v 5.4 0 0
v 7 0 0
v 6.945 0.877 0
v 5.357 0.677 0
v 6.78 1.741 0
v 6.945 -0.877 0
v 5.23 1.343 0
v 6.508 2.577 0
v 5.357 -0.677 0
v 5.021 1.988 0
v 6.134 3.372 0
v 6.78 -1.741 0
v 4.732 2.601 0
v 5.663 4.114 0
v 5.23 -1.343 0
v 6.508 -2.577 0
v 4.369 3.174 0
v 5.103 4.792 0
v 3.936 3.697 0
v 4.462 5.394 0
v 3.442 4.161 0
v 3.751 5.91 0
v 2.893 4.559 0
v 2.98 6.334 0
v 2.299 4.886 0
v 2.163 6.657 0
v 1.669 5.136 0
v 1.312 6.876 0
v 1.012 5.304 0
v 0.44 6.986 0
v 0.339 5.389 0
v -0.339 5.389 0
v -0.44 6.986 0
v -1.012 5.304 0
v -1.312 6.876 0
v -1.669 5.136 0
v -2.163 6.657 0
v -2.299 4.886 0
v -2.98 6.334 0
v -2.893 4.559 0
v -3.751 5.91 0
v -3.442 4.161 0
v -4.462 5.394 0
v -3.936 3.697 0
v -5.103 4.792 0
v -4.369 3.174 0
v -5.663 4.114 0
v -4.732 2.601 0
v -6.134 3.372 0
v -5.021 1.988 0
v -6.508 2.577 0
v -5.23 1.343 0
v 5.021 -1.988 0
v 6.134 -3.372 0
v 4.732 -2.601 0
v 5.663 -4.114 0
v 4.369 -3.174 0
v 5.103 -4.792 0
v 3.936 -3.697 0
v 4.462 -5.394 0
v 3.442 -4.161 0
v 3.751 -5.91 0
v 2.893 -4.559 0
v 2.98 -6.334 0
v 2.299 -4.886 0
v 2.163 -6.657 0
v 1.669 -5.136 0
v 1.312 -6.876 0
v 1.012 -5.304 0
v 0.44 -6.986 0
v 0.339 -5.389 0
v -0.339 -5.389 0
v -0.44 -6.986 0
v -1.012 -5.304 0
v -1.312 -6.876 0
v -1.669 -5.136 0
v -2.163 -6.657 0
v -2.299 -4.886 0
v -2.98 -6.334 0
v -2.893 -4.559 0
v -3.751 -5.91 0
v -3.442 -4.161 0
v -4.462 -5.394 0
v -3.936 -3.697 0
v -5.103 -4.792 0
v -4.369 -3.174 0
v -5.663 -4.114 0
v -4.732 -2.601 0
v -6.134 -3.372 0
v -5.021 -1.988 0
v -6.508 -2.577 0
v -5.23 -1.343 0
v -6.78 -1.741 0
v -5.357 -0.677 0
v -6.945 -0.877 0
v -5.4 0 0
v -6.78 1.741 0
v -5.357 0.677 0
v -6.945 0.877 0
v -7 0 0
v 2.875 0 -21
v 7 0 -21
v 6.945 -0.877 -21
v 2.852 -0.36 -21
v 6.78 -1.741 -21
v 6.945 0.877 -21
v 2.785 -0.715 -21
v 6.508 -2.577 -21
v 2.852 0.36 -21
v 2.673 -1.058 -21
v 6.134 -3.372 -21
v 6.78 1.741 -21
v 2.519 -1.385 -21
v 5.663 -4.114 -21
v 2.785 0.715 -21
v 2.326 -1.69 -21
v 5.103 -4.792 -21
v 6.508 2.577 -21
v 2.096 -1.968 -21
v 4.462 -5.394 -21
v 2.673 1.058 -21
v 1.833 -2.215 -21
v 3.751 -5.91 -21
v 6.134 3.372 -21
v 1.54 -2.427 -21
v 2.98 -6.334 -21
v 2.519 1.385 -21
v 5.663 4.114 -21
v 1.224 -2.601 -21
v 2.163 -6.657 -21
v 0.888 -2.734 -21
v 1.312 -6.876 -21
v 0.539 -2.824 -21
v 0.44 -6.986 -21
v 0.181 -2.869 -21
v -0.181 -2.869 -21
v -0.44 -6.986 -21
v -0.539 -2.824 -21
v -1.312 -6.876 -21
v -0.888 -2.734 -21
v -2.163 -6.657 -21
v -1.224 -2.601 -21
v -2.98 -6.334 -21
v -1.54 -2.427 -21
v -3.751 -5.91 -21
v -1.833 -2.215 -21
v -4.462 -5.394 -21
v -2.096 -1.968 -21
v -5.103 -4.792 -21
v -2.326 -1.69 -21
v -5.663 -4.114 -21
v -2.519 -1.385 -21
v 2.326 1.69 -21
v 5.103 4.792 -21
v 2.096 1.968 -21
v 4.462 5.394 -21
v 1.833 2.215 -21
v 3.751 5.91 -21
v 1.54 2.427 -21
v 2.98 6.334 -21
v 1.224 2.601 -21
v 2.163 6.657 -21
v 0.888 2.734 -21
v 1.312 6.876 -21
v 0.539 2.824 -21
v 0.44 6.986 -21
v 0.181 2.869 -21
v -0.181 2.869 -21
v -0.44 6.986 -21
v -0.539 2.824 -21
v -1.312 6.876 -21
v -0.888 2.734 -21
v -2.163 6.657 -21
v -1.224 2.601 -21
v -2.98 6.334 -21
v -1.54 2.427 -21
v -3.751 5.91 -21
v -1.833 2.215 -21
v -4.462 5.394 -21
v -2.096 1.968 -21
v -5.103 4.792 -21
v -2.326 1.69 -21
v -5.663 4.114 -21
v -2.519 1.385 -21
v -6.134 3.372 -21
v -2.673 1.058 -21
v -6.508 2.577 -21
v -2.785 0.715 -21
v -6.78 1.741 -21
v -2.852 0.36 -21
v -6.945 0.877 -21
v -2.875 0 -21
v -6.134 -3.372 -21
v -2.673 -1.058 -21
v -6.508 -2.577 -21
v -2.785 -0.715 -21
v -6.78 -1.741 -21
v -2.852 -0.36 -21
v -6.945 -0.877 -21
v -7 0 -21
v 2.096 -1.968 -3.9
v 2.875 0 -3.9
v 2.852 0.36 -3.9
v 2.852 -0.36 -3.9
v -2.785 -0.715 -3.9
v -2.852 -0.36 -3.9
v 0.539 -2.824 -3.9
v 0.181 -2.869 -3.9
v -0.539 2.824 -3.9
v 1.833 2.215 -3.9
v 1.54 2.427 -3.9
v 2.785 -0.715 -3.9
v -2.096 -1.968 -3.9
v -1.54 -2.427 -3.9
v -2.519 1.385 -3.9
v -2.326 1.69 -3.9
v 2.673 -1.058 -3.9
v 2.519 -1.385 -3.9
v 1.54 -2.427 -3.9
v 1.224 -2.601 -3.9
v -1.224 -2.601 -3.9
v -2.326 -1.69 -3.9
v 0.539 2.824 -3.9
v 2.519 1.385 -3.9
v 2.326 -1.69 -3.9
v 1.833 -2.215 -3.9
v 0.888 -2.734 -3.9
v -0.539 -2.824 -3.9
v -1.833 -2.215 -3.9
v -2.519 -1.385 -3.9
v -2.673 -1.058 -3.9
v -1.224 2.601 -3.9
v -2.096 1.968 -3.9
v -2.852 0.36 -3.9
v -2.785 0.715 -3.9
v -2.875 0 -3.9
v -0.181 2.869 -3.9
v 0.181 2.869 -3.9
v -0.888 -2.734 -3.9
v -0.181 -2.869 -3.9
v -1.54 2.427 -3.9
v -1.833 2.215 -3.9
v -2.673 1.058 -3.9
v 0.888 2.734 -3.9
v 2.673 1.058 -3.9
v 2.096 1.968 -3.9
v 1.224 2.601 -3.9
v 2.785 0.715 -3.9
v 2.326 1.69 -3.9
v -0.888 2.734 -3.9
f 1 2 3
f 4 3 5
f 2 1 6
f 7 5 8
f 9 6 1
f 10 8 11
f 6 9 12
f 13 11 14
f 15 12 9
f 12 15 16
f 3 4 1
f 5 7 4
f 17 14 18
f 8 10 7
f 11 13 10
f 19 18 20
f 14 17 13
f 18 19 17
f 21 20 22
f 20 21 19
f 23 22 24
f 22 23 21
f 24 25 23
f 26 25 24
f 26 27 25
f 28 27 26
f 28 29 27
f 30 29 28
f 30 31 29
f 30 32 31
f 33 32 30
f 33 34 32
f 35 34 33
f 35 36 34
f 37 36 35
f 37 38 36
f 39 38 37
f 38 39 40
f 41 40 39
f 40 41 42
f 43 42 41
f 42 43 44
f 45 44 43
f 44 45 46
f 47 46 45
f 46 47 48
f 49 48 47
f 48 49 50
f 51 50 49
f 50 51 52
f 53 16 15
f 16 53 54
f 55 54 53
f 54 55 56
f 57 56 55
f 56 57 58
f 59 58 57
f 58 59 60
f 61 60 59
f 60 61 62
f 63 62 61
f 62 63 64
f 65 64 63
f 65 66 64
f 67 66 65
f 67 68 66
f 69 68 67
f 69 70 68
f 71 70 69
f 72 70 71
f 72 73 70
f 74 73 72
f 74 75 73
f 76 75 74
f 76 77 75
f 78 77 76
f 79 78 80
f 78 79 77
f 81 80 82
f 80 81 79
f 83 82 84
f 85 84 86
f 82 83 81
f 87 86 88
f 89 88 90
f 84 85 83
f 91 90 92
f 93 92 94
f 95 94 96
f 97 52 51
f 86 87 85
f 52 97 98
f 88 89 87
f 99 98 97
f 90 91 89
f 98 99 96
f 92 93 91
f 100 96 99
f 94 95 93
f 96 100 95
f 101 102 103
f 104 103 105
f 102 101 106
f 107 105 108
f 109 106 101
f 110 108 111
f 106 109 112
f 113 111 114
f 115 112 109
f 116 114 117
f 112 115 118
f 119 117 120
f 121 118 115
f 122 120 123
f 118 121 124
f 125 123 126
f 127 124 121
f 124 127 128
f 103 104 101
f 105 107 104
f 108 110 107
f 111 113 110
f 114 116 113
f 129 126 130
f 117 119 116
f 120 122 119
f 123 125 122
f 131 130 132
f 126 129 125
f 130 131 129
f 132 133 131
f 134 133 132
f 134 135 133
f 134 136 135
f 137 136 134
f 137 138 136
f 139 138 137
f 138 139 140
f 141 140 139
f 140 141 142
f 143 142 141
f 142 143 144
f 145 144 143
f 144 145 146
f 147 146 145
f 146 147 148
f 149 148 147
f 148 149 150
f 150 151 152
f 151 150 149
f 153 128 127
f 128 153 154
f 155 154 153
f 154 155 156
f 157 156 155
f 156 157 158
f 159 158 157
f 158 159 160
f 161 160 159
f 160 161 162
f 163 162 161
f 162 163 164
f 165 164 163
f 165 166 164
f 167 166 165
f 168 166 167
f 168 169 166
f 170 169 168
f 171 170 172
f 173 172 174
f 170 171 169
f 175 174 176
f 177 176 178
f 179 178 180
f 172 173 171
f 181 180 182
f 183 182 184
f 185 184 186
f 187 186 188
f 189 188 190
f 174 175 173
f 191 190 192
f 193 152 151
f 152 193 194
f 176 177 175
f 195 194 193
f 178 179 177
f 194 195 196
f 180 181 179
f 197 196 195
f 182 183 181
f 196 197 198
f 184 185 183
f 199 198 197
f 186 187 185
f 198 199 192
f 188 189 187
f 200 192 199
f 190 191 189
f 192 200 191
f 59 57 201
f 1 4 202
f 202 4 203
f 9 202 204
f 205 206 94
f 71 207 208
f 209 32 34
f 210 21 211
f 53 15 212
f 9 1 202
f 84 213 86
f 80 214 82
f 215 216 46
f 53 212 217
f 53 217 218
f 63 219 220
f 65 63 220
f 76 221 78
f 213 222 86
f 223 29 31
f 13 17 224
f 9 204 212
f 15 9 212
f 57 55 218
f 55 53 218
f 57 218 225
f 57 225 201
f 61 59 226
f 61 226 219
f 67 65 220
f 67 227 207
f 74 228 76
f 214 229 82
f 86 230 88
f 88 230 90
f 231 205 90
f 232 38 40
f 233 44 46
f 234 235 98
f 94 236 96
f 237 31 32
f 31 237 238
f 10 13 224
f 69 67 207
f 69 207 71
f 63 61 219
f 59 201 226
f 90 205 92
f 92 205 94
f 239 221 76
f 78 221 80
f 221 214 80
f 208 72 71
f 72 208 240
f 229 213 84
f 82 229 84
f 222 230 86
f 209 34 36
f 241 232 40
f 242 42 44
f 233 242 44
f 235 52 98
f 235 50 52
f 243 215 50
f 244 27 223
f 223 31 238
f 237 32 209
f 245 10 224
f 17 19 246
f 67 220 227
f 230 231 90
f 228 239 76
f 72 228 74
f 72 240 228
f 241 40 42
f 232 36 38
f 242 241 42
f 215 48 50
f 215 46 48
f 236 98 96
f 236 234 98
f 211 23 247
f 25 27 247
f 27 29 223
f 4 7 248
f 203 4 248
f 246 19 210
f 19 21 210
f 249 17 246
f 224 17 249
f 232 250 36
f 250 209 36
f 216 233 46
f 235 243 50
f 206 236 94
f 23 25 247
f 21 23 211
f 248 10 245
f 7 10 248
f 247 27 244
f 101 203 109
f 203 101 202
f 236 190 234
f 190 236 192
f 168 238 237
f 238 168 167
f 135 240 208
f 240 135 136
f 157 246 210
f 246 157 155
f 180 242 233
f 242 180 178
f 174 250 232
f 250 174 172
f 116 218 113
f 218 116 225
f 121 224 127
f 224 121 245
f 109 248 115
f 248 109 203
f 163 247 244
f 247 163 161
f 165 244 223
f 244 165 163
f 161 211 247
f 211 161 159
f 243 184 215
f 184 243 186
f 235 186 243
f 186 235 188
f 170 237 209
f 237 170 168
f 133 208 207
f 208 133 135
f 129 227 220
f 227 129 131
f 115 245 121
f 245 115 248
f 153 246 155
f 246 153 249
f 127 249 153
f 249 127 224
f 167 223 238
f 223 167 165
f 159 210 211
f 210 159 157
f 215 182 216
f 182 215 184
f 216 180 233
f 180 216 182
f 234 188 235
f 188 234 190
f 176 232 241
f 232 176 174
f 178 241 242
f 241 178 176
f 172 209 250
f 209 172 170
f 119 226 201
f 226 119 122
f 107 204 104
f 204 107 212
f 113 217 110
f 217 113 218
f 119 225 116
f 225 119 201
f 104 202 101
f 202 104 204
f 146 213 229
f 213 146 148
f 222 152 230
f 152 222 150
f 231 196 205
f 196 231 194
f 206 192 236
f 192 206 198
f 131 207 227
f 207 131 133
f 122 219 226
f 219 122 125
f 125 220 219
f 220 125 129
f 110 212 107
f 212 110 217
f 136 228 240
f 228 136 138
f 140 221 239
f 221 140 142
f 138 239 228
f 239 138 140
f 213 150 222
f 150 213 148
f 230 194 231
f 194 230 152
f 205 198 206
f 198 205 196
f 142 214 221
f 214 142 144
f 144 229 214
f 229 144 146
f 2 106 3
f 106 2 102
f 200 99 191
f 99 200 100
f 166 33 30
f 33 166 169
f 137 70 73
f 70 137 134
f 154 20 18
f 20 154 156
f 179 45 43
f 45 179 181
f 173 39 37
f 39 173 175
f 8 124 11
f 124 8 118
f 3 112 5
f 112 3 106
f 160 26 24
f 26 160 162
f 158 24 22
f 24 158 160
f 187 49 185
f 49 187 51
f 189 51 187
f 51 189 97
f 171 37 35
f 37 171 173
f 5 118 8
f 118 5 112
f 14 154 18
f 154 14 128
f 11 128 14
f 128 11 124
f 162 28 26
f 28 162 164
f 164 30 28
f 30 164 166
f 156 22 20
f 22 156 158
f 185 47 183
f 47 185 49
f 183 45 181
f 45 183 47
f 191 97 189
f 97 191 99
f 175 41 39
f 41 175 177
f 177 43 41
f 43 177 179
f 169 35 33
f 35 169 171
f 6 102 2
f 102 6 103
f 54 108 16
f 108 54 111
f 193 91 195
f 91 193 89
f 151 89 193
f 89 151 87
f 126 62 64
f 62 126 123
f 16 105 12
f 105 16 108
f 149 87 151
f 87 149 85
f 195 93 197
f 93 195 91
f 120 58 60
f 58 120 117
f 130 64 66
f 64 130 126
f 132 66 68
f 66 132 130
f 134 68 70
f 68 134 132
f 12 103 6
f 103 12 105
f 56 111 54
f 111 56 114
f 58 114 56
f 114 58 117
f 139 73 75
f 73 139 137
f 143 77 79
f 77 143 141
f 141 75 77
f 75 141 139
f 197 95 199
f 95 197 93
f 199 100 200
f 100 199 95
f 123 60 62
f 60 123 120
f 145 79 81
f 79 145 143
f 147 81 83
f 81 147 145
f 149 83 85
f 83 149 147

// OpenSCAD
$fn = 50;


difference() {
	union() {
		translate(v = [0, 0, -21.0000000000]) {
			cylinder(h = 21, r = 7.0000000000);
		}
		cylinder(h = 0, r = 10.0000000000);
	}
	union() {
		translate(v = [0, 0, 0]) {
			rotate(a = [0, 0, 0]) {
				difference() {
					union() {
						#translate(v = [0, 0, -21.0000000000]) {
							cylinder(h = 21, r = 2.6000000000);
						}
						#translate(v = [0, 0, -3.9000000000]) {
							cylinder(h = 3.9000000000, r1 = 2.8750000000, r2 = 5.4000000000);
						}
						#translate(v = [0, 0, -21.0000000000]) {
							cylinder(h = 21, r = 2.8750000000);
						}
						#translate(v = [0, 0, -21.0000000000]) {
							cylinder(h = 21, r = 2.6000000000);
						}
					}
					union();
				}
			}
		}
	}
}
